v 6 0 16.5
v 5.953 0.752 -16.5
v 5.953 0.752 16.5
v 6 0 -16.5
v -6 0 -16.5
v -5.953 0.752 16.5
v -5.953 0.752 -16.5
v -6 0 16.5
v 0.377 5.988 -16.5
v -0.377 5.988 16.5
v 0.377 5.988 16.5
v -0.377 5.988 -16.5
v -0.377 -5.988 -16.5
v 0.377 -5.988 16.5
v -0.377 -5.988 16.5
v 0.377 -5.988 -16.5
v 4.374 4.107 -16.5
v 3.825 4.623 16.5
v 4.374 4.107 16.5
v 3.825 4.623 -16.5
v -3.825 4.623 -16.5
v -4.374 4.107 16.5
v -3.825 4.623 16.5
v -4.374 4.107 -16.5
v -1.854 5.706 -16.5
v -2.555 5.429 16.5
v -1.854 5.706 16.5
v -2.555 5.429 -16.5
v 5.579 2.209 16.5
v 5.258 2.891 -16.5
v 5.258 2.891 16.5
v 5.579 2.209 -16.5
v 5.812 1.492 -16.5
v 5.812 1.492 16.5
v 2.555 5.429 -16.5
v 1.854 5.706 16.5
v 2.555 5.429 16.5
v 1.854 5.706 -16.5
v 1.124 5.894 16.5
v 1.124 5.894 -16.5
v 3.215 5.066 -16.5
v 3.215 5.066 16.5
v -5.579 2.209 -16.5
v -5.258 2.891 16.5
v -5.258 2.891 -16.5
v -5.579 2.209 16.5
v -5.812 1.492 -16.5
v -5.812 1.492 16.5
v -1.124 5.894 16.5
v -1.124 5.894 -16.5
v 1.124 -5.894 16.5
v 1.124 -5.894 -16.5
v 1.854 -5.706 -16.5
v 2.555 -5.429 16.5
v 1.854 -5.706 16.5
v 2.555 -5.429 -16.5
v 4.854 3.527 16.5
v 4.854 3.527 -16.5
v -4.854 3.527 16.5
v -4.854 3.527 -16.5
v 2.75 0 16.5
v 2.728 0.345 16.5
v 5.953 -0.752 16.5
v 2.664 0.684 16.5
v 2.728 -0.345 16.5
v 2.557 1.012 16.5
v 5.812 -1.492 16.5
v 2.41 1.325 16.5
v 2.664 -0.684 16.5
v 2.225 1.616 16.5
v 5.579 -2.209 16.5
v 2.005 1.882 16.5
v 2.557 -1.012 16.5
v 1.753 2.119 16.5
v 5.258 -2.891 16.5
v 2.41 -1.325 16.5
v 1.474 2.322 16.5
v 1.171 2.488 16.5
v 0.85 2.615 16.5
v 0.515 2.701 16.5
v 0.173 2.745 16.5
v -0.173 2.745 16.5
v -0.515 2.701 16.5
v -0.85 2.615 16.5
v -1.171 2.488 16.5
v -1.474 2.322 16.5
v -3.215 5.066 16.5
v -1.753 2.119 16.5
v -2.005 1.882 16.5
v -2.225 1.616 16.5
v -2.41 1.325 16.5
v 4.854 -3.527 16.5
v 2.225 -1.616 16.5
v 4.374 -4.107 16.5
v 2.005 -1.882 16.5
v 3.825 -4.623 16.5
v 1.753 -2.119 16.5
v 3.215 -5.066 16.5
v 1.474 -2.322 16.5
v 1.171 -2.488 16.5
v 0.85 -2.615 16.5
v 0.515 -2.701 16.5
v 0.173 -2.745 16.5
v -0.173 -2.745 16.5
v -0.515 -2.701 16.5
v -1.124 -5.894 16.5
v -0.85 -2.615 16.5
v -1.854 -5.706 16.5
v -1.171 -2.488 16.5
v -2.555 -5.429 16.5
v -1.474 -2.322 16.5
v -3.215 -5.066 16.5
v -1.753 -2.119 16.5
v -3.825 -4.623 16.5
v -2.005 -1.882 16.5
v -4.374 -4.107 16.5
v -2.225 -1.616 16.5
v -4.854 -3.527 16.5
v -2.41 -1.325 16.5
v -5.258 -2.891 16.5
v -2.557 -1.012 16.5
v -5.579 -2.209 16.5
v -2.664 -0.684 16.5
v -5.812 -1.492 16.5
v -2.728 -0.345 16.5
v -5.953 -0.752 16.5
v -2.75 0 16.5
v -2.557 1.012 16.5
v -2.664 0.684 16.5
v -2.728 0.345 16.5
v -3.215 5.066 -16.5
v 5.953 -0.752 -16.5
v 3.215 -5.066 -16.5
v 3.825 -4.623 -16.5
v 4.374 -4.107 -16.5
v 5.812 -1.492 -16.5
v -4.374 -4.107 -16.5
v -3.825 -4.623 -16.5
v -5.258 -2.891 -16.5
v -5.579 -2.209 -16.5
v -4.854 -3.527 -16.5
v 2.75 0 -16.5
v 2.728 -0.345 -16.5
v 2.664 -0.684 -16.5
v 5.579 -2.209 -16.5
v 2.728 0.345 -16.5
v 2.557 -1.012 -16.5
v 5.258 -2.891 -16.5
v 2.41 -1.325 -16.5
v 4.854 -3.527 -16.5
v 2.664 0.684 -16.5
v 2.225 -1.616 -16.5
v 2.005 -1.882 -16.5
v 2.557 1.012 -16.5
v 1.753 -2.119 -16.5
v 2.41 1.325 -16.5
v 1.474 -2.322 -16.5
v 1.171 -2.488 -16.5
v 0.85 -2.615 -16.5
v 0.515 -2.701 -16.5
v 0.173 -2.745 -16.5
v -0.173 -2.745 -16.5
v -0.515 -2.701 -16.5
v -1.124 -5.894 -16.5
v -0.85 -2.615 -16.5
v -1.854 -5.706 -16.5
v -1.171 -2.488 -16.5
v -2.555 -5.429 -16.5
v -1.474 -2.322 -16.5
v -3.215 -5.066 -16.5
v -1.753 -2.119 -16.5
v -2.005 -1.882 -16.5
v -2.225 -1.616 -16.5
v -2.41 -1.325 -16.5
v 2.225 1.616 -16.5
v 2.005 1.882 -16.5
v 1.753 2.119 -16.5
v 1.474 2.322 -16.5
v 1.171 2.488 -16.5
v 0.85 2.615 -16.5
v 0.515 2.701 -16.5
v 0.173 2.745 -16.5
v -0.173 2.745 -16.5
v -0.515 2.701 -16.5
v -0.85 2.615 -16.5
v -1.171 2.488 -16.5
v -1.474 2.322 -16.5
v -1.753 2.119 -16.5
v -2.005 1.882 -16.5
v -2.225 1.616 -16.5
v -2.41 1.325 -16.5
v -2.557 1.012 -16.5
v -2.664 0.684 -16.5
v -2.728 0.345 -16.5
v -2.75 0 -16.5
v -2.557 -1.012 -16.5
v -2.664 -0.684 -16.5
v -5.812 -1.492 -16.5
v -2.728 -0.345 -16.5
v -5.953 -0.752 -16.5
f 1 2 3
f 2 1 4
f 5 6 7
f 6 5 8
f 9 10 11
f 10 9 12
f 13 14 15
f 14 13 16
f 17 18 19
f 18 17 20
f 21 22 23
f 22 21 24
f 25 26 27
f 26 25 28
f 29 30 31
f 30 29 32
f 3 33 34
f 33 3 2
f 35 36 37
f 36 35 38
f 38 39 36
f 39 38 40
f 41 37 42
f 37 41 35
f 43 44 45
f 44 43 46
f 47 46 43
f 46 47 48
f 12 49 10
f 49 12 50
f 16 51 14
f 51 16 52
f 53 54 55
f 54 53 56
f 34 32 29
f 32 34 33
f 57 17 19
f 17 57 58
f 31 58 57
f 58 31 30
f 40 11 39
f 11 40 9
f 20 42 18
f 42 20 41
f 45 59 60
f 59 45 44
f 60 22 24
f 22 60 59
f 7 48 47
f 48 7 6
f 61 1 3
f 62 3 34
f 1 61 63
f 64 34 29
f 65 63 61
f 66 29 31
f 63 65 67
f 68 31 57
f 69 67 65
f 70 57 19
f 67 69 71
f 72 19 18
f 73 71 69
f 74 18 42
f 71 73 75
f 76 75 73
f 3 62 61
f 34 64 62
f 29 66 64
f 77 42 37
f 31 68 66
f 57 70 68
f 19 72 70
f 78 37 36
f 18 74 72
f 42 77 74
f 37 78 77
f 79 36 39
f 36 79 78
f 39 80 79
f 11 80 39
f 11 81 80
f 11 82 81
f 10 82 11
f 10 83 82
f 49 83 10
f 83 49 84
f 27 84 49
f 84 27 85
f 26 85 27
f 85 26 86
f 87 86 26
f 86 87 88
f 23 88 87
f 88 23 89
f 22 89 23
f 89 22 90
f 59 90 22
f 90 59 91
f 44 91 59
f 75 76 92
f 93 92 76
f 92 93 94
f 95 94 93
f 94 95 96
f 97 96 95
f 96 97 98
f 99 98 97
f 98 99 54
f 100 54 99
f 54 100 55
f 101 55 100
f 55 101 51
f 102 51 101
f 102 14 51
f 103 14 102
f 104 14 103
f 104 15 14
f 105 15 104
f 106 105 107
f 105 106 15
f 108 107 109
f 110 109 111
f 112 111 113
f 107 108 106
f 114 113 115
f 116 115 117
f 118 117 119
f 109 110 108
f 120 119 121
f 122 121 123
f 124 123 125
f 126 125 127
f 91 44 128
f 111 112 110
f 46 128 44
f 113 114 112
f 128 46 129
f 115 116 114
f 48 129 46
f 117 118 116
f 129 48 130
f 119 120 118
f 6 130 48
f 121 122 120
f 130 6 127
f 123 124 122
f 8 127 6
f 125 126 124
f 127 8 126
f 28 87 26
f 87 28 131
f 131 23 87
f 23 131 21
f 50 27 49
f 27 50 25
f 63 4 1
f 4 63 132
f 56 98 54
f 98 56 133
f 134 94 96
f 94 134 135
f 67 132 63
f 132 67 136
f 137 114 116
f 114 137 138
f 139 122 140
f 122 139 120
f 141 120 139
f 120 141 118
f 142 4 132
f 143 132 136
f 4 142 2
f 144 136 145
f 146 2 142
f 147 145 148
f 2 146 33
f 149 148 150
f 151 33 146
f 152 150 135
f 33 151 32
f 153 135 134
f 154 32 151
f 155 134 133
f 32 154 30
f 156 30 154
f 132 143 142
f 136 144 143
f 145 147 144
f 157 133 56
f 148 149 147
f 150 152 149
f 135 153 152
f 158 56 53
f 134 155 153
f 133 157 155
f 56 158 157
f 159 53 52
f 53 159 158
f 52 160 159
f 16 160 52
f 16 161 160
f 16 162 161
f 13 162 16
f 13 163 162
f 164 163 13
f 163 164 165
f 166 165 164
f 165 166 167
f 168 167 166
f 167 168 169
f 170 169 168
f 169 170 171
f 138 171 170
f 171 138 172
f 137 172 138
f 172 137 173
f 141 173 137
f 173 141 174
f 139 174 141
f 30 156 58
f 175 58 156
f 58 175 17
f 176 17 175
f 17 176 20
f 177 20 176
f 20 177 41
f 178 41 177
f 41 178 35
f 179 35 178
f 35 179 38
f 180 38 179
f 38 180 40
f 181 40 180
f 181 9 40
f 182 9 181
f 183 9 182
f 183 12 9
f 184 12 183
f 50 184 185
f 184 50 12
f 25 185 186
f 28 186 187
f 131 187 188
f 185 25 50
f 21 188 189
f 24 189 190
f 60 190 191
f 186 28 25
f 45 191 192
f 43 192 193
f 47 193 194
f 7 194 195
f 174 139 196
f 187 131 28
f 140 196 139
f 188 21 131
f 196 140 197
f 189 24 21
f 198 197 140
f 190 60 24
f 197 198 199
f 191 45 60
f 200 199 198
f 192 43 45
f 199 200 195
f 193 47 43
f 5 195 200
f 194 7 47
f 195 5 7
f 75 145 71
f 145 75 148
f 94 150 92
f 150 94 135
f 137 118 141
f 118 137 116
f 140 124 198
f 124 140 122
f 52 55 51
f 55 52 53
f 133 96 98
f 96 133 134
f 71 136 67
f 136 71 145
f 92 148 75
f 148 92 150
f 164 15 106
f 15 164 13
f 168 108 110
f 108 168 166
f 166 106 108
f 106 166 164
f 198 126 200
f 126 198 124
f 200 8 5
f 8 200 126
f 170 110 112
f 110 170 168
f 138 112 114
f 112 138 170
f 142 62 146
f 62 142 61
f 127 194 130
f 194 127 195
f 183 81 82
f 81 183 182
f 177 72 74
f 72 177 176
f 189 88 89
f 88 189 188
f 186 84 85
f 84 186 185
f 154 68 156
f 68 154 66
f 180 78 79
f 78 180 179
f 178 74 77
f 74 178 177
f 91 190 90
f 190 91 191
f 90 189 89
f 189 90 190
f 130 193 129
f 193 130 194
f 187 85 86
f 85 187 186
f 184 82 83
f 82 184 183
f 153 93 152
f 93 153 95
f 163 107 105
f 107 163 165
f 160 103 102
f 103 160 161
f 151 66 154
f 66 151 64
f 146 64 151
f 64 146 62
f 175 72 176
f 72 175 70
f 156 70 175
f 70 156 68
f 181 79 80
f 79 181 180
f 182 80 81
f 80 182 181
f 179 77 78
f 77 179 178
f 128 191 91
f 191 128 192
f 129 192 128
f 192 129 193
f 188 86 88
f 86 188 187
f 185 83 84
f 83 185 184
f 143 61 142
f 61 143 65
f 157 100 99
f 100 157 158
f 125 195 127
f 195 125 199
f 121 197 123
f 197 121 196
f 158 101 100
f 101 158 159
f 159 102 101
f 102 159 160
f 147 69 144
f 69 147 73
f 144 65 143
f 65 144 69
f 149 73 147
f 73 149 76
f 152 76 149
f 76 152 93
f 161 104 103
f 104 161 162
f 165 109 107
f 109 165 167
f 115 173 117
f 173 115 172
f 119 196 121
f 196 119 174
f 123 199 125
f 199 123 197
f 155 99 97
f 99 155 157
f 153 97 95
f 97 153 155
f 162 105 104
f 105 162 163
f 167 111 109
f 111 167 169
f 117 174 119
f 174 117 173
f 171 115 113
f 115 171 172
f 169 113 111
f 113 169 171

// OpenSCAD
$fn = 50;


difference() {
	union() {
		translate(v = [0, 0, -16.5000000000]) {
			cylinder(h = 33, r = 6.0000000000);
		}
	}
	union() {
		translate(v = [0, 0, -100.0000000000]) {
			cylinder(h = 200, r = 2.7500000000);
		}
	}
}
